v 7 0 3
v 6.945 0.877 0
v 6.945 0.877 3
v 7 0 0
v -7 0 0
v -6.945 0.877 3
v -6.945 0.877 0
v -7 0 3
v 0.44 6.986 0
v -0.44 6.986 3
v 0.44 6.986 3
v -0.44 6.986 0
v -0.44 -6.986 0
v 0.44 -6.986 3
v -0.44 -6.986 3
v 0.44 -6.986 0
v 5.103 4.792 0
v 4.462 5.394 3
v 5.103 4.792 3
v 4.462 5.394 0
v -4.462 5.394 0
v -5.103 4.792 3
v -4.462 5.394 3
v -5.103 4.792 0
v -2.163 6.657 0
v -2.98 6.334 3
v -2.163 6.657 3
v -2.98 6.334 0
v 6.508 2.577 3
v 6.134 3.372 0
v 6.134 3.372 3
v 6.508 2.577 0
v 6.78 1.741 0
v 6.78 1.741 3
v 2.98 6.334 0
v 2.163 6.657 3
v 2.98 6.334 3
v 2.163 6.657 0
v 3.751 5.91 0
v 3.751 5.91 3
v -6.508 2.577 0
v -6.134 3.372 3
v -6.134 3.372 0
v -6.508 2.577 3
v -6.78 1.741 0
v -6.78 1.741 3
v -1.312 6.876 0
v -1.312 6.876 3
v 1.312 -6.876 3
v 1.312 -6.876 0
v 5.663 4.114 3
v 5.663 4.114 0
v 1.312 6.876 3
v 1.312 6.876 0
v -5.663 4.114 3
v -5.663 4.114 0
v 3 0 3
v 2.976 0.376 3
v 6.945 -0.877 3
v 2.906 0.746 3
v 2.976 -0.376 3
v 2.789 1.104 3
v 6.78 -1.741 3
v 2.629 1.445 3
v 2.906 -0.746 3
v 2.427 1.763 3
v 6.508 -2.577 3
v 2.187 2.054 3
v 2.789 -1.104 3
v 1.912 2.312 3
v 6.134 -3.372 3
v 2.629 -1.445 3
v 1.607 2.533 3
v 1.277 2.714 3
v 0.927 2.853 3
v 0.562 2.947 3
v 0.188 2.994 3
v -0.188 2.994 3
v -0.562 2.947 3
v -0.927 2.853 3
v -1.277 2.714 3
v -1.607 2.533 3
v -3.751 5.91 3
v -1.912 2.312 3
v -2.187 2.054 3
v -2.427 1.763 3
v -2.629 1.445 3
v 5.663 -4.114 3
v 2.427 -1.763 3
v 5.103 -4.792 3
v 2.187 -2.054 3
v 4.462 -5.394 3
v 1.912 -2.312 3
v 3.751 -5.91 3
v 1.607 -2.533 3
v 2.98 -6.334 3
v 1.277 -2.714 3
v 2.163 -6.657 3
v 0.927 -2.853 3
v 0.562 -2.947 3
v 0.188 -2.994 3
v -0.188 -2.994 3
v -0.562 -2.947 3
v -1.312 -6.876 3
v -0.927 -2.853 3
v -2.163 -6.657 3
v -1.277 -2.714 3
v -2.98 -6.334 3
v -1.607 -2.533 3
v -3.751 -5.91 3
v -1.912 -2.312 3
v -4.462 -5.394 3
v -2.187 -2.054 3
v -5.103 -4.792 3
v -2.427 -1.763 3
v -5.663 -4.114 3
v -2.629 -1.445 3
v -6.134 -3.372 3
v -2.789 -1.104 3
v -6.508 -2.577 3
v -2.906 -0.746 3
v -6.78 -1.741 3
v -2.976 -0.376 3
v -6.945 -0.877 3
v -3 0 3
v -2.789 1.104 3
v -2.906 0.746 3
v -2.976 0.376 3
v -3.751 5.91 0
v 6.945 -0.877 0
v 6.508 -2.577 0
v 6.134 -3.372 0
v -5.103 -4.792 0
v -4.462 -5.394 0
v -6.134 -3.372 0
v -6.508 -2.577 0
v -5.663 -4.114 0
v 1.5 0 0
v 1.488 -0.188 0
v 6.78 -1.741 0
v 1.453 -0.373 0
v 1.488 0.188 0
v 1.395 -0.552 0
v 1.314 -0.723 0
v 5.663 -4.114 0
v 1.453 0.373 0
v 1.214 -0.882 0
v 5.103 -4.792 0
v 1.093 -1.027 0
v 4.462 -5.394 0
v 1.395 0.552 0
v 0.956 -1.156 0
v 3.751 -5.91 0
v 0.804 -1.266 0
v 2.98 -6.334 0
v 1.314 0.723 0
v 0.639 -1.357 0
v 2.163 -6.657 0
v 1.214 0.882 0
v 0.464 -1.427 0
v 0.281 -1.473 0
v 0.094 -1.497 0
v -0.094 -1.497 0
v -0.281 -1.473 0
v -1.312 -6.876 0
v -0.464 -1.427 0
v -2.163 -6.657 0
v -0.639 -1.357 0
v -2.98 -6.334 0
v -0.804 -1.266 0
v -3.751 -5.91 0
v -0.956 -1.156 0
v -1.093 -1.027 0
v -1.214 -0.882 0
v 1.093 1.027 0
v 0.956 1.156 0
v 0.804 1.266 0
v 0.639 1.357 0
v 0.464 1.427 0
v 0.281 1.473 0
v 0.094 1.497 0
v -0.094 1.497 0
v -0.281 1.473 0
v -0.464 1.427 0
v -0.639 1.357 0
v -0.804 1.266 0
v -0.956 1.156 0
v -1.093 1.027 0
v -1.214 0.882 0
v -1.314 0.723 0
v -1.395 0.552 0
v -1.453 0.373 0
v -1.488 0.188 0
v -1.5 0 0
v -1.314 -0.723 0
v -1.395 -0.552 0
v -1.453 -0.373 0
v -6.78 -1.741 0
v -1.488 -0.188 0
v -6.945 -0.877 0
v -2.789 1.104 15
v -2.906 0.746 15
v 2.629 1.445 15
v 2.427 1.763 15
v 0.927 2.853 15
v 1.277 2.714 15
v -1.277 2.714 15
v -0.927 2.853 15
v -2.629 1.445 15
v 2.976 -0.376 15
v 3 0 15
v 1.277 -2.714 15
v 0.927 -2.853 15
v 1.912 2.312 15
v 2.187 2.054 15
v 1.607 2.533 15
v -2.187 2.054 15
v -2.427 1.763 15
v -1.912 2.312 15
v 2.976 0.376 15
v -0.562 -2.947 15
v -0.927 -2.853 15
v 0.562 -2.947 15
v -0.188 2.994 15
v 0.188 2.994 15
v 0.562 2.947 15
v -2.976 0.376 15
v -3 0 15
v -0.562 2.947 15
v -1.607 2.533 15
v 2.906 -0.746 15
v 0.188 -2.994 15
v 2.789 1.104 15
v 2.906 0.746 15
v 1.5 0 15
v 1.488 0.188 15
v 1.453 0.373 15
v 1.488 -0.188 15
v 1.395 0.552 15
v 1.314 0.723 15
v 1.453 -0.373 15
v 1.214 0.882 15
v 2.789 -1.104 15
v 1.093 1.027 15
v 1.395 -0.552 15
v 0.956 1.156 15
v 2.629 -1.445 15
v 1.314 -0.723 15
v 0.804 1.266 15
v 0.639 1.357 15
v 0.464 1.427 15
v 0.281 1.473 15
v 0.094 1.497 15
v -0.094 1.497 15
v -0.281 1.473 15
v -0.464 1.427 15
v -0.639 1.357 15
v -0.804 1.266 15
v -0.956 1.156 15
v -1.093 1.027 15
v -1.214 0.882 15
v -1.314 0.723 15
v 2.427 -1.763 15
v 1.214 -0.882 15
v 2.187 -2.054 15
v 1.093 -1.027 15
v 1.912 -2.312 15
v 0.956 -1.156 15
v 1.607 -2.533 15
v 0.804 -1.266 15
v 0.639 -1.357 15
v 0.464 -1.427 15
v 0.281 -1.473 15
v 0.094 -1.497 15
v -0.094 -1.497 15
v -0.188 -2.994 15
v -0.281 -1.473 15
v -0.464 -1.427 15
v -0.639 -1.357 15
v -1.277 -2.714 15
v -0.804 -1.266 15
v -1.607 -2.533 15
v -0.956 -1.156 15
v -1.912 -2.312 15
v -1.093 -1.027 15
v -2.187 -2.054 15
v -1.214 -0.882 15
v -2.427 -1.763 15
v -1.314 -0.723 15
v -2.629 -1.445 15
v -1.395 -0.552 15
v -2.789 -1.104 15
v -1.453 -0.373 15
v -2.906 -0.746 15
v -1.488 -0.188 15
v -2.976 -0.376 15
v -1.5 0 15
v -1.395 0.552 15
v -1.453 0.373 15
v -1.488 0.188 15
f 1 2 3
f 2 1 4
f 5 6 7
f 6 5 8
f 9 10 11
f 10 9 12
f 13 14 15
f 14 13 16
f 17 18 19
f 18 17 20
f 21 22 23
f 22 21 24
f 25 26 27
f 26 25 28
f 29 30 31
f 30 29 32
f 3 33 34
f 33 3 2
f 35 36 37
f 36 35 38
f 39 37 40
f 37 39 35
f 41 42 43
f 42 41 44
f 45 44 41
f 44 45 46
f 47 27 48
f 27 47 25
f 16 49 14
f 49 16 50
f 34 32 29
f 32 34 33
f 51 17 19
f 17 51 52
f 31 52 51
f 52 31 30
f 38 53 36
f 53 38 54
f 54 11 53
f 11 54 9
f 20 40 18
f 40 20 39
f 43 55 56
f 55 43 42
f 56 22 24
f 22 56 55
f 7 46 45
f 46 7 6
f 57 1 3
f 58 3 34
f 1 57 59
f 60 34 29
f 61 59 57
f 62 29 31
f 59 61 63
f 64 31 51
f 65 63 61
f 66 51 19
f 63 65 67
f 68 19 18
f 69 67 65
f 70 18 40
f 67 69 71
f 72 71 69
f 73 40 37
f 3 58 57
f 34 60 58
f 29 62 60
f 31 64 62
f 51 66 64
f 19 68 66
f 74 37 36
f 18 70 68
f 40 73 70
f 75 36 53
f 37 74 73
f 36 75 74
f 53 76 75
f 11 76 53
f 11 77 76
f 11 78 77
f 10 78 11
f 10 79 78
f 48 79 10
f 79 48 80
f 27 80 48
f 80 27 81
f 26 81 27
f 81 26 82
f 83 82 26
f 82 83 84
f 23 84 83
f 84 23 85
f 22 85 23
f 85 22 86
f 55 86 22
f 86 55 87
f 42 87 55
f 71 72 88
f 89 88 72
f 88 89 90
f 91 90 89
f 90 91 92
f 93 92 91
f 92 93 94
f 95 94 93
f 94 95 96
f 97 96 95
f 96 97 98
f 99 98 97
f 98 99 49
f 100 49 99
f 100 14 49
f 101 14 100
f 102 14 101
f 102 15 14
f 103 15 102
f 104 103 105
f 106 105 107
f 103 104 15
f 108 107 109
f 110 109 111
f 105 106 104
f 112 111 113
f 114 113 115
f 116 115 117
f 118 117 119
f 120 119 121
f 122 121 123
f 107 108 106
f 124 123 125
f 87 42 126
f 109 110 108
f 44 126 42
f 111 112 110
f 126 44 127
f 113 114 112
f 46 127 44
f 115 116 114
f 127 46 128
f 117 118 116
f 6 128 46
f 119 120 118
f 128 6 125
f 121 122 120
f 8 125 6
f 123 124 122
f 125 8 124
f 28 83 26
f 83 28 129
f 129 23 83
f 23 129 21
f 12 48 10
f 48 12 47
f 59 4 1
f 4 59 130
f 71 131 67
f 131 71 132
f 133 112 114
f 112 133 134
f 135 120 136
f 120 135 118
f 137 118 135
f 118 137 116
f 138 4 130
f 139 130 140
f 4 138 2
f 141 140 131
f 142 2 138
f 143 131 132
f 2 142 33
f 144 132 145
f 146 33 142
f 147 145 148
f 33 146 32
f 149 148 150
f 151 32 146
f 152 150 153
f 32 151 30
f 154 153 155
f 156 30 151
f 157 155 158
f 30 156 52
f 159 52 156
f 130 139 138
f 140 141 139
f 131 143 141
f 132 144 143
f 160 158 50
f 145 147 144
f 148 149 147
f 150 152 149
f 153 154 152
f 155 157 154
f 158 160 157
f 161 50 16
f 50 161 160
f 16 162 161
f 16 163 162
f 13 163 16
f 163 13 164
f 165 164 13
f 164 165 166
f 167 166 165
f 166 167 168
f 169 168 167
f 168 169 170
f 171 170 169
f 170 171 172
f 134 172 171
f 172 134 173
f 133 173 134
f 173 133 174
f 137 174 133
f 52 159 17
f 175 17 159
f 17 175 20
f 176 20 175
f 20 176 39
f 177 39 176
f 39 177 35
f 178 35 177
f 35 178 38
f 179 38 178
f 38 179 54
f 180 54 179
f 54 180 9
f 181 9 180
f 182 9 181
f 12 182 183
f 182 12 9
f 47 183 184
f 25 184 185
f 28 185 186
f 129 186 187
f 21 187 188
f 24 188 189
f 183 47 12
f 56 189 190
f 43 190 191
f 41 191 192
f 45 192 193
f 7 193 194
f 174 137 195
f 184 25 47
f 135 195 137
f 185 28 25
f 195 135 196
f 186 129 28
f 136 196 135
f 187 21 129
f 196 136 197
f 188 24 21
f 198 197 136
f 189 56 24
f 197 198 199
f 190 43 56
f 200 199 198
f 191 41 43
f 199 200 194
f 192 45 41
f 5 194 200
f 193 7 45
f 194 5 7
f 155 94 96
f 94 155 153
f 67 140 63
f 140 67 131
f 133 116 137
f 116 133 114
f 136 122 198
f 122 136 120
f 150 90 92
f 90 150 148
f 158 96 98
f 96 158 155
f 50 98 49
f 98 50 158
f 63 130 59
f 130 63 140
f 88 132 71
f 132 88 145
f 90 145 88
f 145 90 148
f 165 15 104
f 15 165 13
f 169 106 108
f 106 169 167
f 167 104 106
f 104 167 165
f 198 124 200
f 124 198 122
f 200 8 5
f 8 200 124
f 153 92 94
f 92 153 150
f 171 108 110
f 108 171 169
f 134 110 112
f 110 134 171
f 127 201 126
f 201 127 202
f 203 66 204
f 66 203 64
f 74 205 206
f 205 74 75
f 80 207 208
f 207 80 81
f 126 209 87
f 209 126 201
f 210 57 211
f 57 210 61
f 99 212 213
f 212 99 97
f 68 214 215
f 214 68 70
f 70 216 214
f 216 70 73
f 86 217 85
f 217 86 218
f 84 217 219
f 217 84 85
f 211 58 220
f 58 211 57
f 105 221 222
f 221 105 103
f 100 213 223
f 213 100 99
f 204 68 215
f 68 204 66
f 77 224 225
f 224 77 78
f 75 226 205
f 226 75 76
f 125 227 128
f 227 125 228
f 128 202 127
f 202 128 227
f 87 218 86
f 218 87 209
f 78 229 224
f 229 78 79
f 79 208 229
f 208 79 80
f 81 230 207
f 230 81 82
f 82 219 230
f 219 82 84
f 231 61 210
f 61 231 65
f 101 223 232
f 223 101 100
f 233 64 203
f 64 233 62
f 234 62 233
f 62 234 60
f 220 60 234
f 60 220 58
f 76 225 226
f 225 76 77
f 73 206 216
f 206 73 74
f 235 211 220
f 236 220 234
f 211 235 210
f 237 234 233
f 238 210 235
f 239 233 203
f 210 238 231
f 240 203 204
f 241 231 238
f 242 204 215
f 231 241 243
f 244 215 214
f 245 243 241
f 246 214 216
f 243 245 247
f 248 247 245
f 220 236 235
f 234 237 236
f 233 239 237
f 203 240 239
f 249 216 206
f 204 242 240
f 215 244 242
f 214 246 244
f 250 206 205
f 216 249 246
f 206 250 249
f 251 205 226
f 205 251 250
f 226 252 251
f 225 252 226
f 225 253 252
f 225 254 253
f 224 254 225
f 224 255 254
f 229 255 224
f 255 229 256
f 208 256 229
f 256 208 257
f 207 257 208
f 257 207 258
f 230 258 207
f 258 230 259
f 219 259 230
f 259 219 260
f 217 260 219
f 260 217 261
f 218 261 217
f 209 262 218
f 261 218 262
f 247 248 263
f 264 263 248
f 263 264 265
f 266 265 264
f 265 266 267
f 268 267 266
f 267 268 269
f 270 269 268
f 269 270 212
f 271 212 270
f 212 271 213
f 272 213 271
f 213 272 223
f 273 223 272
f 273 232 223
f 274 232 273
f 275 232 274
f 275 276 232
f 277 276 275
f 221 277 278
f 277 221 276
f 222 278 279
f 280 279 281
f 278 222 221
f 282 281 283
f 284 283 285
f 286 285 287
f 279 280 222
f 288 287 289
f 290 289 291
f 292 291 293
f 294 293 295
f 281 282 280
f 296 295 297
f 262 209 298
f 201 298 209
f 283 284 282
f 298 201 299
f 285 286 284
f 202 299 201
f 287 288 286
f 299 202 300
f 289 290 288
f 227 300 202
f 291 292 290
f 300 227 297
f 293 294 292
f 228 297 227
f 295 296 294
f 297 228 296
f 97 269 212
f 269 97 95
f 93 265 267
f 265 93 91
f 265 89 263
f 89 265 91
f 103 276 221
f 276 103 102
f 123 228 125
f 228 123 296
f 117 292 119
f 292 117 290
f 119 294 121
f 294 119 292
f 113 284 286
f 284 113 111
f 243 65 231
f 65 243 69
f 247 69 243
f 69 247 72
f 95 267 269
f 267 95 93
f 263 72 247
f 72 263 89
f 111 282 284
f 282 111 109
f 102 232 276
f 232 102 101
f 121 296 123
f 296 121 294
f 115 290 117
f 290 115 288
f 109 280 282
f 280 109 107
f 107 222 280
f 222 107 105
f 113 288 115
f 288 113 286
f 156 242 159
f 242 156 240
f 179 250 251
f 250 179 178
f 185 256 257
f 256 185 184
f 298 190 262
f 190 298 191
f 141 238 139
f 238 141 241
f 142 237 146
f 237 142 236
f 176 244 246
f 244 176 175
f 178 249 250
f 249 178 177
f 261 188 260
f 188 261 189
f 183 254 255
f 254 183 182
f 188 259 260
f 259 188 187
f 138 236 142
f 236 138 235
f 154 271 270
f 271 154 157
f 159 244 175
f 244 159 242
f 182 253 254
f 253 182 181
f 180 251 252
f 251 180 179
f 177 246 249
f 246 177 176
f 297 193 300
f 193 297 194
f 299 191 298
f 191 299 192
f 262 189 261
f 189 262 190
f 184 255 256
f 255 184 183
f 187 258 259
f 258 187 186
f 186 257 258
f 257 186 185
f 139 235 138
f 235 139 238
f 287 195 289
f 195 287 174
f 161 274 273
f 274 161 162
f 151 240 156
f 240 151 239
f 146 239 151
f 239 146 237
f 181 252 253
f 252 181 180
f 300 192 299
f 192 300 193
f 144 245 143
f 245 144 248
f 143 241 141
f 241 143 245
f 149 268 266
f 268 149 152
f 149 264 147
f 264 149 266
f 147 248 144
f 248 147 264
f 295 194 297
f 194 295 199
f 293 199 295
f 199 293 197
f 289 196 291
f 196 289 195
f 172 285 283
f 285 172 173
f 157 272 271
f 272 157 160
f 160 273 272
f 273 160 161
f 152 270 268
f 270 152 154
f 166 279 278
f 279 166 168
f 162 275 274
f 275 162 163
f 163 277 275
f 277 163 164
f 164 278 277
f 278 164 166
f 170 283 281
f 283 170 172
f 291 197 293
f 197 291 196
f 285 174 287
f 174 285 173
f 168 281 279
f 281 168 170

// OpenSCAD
$fn = 50;


difference() {
	union() {
		translate(v = [0, 0, 0]) {
			rotate(a = [0, 0, 0]) {
				cylinder(h = 3, r = 7.0000000000);
			}
		}
		translate(v = [0, 0, 0]) {
			rotate(a = [0, 0, 0]) {
				cylinder(h = 15, r = 3.0000000000);
			}
		}
	}
	union() {
		translate(v = [0, 0, -125.0000000000]) {
			rotate(a = [0, 0, 0]) {
				cylinder(h = 250, r = 1.5000000000);
			}
		}
	}
}
